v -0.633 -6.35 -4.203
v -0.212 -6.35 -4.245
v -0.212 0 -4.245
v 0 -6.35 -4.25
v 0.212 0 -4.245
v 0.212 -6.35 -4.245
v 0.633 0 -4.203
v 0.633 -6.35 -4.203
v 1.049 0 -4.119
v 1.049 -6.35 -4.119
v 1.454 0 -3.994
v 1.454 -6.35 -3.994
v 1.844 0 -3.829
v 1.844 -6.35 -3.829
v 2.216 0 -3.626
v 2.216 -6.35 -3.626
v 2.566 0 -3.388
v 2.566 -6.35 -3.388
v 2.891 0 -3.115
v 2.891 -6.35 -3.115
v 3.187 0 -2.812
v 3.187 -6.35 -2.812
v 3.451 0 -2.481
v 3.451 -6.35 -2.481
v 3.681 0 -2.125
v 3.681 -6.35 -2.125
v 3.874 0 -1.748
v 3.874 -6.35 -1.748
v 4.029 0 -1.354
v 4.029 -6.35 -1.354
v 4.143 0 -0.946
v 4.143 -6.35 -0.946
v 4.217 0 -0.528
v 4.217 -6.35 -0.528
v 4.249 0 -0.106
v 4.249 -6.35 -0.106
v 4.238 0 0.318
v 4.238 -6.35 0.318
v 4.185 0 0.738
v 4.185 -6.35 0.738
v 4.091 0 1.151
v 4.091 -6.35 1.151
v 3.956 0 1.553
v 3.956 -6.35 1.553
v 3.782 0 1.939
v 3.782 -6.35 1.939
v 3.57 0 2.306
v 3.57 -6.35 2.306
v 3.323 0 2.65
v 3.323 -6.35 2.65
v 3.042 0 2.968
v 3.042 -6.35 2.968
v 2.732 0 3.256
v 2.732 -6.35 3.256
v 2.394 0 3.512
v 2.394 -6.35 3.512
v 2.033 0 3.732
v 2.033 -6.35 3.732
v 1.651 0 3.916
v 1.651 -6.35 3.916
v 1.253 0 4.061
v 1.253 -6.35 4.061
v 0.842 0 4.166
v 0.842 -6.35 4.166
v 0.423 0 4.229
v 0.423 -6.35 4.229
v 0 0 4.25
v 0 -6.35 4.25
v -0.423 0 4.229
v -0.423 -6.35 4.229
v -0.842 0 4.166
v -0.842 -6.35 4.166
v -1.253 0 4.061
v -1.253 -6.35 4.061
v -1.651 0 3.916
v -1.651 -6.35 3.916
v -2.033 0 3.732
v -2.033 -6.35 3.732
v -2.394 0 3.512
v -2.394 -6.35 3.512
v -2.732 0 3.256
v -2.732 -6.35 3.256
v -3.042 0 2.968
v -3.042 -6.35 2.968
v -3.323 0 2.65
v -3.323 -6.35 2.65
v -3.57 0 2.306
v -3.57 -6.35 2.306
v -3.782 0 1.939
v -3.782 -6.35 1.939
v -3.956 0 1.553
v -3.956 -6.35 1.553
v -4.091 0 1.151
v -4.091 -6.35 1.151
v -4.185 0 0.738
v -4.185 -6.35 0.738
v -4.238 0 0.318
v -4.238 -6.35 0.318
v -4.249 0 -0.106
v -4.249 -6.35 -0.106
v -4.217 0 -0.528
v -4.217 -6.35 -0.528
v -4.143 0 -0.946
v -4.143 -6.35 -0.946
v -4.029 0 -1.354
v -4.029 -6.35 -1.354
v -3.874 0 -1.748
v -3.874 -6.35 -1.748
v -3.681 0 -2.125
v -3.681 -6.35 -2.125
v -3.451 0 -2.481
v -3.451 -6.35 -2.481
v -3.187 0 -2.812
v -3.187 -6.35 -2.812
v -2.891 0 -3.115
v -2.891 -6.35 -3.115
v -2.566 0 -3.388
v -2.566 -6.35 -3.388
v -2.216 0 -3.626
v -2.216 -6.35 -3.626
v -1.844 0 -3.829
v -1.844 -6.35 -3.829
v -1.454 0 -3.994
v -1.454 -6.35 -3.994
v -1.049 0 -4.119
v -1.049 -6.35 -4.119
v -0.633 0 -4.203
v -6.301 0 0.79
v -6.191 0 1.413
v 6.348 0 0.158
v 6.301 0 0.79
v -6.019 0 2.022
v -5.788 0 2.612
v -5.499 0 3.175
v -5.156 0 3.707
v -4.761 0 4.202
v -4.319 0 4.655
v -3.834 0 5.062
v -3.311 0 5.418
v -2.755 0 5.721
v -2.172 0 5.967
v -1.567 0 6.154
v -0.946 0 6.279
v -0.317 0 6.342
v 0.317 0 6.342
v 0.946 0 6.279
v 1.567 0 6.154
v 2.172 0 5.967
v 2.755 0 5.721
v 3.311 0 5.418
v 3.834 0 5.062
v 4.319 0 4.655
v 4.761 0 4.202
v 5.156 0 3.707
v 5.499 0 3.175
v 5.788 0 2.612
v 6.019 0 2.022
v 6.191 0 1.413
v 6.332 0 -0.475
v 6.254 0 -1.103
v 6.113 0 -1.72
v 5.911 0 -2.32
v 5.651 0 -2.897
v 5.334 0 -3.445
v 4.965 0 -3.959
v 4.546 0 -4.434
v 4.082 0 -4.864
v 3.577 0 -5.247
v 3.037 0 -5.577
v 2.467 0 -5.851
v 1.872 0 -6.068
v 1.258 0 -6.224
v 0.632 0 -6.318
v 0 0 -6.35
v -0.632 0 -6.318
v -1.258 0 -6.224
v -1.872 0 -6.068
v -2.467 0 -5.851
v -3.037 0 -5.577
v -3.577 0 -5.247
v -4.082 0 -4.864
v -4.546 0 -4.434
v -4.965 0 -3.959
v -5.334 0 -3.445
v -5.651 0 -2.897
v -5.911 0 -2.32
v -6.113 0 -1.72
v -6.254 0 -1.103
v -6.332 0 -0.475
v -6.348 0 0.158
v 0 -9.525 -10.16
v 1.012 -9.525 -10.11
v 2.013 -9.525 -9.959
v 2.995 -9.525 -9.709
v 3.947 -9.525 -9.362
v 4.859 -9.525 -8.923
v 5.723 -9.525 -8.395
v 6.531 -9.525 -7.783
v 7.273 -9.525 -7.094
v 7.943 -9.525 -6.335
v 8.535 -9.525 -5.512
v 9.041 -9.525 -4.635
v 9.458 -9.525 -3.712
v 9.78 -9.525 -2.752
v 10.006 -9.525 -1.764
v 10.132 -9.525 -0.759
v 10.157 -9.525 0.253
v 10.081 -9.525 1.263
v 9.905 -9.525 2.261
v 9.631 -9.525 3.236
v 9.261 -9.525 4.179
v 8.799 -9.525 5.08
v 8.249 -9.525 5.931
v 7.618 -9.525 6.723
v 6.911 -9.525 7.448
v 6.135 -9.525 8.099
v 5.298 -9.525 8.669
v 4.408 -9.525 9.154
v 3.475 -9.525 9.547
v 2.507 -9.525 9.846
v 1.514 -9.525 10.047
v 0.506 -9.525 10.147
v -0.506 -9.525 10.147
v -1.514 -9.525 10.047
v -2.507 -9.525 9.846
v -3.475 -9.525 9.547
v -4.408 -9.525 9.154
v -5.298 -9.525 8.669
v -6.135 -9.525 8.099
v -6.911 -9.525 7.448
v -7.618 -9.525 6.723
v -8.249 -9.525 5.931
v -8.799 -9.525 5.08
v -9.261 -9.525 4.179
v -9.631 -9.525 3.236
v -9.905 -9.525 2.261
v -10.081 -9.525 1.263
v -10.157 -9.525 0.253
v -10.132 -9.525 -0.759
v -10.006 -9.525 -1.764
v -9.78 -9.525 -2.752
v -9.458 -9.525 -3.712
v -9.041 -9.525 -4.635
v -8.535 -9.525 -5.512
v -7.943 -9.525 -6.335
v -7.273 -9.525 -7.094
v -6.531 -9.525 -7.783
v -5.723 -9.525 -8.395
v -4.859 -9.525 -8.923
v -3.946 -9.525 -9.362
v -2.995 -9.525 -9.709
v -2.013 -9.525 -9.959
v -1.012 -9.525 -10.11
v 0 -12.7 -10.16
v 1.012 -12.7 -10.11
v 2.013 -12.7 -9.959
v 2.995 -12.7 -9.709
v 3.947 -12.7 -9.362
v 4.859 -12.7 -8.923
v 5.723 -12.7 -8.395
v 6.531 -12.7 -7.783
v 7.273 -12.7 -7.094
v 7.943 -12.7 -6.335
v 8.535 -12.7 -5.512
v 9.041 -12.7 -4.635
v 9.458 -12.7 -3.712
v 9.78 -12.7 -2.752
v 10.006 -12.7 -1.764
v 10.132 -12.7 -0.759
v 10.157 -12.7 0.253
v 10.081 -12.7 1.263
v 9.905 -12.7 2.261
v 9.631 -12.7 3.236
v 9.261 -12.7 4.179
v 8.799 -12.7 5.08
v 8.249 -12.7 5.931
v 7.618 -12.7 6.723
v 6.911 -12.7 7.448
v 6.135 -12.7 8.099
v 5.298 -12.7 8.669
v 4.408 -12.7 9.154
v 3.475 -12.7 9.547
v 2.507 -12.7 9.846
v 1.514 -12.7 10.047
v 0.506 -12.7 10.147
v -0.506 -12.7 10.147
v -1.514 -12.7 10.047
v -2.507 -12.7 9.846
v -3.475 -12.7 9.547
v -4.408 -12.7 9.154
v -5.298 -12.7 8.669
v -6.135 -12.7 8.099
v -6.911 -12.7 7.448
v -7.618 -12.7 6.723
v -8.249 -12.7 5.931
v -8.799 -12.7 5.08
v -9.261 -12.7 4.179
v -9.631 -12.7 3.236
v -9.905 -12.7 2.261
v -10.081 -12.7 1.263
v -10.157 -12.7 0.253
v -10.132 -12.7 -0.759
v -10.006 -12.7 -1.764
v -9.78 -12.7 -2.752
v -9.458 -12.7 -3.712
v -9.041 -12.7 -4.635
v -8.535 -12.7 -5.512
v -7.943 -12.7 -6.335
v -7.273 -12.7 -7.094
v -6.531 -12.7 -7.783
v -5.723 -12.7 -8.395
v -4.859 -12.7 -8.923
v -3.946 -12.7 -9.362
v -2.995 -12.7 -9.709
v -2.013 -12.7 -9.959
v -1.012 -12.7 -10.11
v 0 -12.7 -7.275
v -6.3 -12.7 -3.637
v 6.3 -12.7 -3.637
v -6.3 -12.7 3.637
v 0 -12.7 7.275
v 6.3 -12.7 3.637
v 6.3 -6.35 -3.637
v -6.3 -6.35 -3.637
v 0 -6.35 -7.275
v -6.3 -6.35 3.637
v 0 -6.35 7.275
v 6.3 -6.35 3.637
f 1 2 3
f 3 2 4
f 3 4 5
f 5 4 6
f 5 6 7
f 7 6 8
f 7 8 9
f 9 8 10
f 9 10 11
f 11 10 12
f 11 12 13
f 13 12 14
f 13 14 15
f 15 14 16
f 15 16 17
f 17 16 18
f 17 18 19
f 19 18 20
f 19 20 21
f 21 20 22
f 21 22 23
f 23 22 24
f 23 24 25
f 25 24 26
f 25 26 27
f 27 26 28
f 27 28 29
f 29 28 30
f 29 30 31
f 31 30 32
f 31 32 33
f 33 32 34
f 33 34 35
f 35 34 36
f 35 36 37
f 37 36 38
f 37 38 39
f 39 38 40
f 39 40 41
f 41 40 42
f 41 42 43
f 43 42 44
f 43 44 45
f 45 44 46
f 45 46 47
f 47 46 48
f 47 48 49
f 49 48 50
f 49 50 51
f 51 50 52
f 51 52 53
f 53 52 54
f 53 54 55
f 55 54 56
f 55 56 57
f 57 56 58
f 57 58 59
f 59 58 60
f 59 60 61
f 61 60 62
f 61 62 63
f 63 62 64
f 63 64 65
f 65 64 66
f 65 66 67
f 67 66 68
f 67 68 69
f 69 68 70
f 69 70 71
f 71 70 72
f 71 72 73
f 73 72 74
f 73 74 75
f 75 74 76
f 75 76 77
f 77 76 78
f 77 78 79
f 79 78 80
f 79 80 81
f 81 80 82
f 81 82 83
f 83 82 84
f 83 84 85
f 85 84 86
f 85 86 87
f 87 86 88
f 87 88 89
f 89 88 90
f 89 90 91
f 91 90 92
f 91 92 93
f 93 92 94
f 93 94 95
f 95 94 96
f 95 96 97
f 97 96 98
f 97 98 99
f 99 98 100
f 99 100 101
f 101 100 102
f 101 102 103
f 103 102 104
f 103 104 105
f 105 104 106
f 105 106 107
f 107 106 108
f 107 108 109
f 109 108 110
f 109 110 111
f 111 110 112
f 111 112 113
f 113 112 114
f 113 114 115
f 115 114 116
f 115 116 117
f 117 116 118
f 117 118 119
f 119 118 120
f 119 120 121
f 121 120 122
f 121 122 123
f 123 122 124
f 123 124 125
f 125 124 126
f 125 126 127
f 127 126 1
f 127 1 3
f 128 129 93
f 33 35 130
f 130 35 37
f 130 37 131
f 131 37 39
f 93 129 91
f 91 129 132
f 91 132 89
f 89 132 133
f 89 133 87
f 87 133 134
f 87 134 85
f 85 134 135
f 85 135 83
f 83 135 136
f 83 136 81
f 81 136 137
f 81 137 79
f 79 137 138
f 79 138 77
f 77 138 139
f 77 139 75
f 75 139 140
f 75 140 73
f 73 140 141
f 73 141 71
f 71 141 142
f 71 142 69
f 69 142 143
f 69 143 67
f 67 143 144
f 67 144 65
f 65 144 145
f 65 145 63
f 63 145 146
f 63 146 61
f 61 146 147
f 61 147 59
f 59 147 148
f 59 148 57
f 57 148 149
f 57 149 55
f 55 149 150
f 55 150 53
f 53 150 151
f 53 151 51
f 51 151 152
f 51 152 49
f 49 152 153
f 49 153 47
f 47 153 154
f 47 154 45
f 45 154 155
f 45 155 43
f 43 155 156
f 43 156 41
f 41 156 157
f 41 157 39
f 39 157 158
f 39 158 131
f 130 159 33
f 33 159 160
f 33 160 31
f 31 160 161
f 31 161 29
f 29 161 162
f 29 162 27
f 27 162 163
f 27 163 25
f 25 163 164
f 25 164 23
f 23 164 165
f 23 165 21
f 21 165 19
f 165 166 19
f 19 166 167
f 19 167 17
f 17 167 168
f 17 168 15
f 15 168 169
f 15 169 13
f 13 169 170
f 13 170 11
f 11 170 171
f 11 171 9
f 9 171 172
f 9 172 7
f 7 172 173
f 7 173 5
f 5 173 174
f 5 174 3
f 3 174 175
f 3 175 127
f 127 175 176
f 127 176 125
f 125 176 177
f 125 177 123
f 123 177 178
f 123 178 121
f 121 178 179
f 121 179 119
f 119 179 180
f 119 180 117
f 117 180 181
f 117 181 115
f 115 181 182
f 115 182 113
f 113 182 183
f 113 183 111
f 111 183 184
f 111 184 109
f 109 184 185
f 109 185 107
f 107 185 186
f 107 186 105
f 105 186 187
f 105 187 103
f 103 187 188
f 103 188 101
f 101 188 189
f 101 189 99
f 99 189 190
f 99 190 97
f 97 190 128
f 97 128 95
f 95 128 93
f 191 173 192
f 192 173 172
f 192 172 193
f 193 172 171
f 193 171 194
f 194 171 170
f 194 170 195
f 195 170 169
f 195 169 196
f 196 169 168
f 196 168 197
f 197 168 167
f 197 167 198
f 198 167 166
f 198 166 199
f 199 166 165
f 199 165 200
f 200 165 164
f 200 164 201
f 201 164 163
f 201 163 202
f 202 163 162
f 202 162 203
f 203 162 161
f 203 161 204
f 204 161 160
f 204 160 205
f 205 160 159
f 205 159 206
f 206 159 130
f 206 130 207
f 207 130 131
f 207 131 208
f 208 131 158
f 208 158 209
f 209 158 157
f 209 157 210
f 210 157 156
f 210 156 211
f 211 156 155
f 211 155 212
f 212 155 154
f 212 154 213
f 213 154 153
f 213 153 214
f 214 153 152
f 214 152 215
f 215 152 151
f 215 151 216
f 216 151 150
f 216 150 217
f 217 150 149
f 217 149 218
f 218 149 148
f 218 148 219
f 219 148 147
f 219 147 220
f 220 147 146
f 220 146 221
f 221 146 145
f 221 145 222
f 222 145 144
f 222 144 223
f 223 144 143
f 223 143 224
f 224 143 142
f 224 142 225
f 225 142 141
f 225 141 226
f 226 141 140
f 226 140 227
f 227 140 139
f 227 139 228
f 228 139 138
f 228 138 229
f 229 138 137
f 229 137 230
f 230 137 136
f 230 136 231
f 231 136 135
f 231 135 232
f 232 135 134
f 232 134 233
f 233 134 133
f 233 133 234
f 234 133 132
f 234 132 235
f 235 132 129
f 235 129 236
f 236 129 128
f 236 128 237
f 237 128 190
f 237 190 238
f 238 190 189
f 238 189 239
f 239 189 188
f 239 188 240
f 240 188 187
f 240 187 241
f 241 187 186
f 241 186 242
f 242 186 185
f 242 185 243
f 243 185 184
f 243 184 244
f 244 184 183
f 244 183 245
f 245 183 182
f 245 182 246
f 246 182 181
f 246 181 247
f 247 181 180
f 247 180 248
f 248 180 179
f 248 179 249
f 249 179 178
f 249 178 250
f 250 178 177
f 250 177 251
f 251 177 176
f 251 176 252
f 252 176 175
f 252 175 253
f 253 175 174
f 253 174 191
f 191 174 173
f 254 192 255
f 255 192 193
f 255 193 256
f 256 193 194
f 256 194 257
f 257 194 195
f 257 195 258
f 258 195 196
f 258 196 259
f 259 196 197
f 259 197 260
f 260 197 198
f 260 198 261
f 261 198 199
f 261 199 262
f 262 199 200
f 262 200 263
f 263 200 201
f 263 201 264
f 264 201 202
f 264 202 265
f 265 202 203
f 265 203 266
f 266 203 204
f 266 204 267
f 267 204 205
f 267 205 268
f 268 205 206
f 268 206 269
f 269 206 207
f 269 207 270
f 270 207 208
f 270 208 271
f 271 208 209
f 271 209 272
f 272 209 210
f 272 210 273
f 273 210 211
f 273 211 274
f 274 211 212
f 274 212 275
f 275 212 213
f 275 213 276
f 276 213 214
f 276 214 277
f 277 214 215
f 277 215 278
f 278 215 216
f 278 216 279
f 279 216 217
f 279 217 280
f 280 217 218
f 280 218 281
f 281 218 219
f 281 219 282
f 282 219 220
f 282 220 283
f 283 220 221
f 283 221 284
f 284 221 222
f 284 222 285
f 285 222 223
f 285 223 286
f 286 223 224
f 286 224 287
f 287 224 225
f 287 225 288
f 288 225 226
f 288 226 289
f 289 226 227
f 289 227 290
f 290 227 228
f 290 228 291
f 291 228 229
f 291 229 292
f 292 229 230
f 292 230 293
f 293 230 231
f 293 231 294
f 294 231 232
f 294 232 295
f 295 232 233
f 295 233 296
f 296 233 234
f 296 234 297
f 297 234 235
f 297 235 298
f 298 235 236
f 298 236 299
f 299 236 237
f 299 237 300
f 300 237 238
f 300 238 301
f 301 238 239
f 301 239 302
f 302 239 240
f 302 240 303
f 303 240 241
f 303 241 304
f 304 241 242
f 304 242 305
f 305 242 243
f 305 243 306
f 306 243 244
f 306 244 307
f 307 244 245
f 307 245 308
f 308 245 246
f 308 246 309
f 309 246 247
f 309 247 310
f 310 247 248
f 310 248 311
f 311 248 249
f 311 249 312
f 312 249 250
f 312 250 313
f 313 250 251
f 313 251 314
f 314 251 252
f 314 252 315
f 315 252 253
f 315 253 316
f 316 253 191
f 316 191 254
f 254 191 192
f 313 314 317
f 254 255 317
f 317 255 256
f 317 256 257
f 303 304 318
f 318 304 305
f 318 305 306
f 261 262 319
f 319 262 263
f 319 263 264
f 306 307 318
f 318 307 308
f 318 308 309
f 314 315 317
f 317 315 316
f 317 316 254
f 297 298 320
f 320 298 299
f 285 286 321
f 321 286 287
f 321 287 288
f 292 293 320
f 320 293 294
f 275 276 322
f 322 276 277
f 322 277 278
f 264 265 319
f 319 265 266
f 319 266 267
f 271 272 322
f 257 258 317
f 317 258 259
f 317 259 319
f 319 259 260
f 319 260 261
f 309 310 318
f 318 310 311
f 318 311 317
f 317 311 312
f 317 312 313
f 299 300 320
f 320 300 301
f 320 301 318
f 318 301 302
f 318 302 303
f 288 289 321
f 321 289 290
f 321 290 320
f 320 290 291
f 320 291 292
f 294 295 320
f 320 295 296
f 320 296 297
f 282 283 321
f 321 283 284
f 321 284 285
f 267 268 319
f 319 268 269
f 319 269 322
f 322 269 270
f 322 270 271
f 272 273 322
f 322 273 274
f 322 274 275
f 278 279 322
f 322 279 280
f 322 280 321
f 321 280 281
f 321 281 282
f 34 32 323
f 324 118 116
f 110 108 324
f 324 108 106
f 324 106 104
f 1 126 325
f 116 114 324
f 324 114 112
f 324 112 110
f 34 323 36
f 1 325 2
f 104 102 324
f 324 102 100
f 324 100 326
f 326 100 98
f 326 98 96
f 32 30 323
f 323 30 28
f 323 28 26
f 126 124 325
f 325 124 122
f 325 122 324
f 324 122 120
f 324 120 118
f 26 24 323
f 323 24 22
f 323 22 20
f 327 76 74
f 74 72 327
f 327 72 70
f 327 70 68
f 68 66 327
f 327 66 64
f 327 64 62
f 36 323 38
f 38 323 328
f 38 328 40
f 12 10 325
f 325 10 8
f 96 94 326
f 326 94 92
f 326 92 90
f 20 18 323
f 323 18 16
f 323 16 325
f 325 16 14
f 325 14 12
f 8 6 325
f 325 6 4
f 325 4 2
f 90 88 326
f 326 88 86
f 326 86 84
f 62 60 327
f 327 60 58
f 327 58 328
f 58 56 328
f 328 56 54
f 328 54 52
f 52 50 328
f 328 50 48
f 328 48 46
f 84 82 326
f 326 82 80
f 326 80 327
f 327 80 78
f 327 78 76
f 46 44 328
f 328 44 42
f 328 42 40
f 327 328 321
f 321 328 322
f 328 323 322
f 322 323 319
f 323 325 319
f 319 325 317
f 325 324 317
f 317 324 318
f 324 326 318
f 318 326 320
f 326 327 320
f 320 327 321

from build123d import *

# Parameters (mm, degrees)
SKETCH6_R          = 4.25
CUT_EXTRUDE3_DEPTH = 20.176579466
CUT_EXTRUDE4_DEPTH = 6.35


with BuildPart() as part:
    # Sketch2 → Revolve1 (revolve)
    with BuildSketch(Plane(origin=(0, 0, 0), x_dir=(0, 0, -1), z_dir=(1, 0, 0)), mode=Mode.PRIVATE) as revolve1_sk:
        Polygon((0, 0), (-6.35, 0), (-10.16, -9.525), (-10.16, -12.7), (0, -12.7), align=None)
    revolve(revolve1_sk.sketch.rotate(Axis((0, -12.7, 0), (0, 1, 0)), 180), axis=Axis((0, -12.7, 0), (0, 1, 0)))

    # Sketch6 → Cut-Extrude3 (cut, through all)
    with BuildSketch(Plane(origin=(0, 0, 0), x_dir=(1, 0, 0), z_dir=(0, 1, 0))):
        with Locations(Location((0, 0, 0), (0, 0, 270))):
            Circle(SKETCH6_R)
    extrude(amount=-CUT_EXTRUDE3_DEPTH, mode=Mode.SUBTRACT)

    # Sketch7 → Cut-Extrude4 (cut)
    with BuildSketch(Plane.XZ.offset(12.7)):
        Polygon((0, 7.274613392), (-6.3, 3.637306696), (-6.3, -3.637306696), (0, -7.274613392), (6.3, -3.637306696), (6.3, 3.637306696), align=None)
    extrude(amount=-CUT_EXTRUDE4_DEPTH, mode=Mode.SUBTRACT)


solid = part.part
